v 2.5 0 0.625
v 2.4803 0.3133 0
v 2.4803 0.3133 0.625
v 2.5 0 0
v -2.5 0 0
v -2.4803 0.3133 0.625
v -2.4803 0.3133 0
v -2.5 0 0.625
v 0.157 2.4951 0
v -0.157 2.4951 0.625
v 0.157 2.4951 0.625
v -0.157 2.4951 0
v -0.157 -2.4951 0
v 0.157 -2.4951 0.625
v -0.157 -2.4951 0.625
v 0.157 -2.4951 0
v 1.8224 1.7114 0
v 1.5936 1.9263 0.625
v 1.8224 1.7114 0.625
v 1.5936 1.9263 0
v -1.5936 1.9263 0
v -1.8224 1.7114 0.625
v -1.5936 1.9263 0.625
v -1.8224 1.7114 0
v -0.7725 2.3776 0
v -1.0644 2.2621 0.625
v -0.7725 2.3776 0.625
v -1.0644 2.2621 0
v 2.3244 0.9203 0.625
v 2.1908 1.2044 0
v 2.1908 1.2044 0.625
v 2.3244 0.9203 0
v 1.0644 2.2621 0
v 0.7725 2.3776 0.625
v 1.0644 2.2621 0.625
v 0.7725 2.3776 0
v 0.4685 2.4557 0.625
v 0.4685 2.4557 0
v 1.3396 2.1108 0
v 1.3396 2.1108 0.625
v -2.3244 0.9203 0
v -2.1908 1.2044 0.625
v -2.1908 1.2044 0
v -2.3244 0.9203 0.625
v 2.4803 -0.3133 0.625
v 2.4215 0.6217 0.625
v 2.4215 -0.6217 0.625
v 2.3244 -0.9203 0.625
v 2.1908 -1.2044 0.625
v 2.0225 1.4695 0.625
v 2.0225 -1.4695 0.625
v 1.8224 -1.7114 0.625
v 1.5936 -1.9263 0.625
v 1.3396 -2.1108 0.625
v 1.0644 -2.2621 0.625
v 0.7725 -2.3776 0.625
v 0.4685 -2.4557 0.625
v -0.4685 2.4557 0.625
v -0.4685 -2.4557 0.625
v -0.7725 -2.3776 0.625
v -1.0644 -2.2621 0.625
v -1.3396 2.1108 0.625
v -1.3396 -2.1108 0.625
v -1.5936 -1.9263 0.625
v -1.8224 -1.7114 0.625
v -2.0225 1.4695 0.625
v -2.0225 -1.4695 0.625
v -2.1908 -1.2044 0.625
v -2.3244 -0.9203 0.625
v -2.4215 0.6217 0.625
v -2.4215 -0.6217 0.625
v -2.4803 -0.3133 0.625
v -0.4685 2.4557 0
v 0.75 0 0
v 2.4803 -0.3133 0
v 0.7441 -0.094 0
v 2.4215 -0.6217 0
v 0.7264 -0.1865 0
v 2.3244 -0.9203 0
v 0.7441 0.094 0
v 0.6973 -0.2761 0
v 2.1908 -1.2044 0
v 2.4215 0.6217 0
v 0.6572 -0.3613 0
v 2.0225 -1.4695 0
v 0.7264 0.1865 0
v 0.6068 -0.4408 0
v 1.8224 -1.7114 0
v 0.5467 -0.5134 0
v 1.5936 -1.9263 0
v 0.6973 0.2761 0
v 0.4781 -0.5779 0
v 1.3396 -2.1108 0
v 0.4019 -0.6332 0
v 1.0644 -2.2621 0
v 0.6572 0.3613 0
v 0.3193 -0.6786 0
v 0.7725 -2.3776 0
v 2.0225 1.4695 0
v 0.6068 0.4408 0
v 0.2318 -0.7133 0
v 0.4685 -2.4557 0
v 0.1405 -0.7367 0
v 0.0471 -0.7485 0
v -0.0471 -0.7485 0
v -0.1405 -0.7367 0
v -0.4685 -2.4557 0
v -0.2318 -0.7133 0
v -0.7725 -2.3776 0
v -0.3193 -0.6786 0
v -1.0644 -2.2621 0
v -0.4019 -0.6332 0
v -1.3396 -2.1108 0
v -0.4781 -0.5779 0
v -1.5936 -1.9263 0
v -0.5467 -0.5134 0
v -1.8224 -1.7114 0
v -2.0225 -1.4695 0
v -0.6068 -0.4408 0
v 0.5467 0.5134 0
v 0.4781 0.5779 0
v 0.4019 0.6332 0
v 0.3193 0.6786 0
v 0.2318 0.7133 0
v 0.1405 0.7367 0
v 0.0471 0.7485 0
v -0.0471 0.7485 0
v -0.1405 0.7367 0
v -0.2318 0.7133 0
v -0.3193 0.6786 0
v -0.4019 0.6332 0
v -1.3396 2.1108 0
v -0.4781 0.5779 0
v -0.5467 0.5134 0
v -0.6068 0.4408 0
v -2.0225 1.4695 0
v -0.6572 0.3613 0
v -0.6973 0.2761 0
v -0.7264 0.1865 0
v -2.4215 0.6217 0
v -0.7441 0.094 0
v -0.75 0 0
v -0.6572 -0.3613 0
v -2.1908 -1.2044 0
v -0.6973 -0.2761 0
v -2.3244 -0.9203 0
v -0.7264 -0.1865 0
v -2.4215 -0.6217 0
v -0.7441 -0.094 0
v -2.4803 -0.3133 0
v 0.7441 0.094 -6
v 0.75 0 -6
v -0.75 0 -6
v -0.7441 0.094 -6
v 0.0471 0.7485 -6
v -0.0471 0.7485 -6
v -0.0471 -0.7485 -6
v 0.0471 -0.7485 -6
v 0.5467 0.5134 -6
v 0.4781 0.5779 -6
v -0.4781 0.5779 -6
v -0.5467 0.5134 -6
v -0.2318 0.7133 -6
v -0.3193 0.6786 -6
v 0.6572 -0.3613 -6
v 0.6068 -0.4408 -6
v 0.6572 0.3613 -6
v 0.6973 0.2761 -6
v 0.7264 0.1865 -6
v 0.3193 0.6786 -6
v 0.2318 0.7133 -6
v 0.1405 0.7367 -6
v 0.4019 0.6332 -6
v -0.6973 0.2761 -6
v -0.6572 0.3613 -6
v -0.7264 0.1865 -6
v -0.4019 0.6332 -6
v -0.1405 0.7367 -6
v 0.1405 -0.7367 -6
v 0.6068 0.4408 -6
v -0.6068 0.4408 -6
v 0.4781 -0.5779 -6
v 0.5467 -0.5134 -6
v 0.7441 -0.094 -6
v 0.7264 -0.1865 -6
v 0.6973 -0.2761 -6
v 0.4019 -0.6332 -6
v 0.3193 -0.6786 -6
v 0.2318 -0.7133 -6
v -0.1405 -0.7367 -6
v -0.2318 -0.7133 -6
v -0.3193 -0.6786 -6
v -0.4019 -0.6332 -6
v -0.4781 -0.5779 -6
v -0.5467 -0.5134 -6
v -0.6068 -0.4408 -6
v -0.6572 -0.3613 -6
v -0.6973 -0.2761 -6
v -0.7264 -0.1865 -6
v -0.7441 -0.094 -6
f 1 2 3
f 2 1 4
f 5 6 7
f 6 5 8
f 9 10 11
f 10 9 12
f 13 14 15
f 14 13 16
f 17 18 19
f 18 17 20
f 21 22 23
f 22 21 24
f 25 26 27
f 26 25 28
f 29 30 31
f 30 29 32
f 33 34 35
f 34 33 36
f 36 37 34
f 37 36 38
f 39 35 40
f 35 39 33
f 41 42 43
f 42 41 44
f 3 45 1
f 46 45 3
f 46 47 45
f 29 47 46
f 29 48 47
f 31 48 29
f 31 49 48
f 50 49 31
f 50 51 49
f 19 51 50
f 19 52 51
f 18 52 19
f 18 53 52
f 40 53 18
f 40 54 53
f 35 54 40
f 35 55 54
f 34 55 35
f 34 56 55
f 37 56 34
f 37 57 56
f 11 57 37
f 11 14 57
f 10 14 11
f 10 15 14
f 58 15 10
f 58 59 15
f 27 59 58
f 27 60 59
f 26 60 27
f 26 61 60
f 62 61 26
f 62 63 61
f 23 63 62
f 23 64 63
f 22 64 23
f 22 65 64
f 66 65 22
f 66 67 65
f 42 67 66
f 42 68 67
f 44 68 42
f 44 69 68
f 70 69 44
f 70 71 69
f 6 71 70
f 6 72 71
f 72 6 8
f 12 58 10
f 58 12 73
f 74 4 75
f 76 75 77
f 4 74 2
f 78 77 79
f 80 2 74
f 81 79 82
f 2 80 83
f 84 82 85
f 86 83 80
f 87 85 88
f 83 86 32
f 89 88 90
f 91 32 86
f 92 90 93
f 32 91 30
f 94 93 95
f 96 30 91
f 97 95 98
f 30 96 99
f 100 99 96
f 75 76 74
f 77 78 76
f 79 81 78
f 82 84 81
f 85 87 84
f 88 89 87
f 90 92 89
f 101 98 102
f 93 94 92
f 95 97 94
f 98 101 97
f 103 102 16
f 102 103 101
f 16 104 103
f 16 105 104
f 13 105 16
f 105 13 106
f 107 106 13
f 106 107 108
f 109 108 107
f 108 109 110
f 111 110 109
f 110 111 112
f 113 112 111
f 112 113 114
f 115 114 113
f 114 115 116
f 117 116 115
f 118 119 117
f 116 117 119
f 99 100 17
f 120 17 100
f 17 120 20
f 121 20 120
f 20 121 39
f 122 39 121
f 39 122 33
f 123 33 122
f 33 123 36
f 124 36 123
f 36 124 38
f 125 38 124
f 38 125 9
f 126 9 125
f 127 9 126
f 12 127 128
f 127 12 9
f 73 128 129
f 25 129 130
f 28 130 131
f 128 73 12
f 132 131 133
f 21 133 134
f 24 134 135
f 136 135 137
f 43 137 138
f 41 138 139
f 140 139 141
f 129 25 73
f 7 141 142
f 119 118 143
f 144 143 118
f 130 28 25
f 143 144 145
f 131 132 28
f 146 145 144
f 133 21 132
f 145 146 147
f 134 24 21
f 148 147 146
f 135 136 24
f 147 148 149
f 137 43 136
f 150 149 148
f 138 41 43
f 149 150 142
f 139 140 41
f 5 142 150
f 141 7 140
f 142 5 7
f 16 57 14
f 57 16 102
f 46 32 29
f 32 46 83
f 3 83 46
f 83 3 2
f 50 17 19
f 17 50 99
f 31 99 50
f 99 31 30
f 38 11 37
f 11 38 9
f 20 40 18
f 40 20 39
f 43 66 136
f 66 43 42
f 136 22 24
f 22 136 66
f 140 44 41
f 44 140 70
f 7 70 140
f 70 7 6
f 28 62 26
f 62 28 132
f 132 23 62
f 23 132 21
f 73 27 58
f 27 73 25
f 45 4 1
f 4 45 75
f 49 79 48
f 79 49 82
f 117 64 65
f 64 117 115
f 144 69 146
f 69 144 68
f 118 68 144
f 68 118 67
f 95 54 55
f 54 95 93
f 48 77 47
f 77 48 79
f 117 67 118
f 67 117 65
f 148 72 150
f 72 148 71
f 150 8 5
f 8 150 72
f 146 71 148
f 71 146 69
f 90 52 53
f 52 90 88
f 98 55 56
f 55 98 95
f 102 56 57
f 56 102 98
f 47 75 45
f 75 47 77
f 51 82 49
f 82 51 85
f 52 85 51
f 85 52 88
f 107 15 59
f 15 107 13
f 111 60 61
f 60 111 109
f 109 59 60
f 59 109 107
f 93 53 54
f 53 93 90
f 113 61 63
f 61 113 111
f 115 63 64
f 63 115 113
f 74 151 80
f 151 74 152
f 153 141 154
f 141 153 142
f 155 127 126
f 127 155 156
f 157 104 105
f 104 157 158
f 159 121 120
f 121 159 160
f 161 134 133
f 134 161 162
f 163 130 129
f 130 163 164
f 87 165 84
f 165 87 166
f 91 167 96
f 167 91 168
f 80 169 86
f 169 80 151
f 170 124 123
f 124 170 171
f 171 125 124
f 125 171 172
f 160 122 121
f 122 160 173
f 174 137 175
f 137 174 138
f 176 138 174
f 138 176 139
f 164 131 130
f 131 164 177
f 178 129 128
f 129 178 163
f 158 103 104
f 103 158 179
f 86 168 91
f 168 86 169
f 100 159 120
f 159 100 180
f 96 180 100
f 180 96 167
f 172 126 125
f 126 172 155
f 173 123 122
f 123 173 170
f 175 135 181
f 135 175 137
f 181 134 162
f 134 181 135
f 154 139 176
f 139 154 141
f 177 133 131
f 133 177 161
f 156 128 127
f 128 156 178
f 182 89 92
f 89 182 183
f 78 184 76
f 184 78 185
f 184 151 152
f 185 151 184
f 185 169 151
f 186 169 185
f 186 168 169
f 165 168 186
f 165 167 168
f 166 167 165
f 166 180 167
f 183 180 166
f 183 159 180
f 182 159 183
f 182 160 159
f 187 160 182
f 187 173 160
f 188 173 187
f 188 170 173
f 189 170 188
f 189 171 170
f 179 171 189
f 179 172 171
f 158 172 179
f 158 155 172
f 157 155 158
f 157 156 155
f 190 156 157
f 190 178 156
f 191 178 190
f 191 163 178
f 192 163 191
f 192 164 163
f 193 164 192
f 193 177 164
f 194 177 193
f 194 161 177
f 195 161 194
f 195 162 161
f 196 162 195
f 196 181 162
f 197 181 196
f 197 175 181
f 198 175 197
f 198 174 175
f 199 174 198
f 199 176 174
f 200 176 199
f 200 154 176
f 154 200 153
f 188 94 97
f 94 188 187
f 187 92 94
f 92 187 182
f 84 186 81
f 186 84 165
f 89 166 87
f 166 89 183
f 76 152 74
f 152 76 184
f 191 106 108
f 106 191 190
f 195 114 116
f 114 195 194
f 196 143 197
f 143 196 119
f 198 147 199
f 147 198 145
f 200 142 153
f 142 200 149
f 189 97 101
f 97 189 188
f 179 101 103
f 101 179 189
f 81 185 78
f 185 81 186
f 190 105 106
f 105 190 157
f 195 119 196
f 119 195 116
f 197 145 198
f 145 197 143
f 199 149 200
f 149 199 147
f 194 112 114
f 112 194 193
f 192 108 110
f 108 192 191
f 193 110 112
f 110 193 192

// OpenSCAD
$fn = 50;


difference() {
	union() {
		translate(v = [0, 0, 0]) {
			rotate(a = [0, 0, 0]) {
				cylinder(h = 0.6250000000, r = 2.5000000000);
			}
		}
		translate(v = [0, 0, -6]) {
			rotate(a = [0, 0, 0]) {
				cylinder(h = 6, r = 0.7500000000);
			}
		}
	}
	union();
}
